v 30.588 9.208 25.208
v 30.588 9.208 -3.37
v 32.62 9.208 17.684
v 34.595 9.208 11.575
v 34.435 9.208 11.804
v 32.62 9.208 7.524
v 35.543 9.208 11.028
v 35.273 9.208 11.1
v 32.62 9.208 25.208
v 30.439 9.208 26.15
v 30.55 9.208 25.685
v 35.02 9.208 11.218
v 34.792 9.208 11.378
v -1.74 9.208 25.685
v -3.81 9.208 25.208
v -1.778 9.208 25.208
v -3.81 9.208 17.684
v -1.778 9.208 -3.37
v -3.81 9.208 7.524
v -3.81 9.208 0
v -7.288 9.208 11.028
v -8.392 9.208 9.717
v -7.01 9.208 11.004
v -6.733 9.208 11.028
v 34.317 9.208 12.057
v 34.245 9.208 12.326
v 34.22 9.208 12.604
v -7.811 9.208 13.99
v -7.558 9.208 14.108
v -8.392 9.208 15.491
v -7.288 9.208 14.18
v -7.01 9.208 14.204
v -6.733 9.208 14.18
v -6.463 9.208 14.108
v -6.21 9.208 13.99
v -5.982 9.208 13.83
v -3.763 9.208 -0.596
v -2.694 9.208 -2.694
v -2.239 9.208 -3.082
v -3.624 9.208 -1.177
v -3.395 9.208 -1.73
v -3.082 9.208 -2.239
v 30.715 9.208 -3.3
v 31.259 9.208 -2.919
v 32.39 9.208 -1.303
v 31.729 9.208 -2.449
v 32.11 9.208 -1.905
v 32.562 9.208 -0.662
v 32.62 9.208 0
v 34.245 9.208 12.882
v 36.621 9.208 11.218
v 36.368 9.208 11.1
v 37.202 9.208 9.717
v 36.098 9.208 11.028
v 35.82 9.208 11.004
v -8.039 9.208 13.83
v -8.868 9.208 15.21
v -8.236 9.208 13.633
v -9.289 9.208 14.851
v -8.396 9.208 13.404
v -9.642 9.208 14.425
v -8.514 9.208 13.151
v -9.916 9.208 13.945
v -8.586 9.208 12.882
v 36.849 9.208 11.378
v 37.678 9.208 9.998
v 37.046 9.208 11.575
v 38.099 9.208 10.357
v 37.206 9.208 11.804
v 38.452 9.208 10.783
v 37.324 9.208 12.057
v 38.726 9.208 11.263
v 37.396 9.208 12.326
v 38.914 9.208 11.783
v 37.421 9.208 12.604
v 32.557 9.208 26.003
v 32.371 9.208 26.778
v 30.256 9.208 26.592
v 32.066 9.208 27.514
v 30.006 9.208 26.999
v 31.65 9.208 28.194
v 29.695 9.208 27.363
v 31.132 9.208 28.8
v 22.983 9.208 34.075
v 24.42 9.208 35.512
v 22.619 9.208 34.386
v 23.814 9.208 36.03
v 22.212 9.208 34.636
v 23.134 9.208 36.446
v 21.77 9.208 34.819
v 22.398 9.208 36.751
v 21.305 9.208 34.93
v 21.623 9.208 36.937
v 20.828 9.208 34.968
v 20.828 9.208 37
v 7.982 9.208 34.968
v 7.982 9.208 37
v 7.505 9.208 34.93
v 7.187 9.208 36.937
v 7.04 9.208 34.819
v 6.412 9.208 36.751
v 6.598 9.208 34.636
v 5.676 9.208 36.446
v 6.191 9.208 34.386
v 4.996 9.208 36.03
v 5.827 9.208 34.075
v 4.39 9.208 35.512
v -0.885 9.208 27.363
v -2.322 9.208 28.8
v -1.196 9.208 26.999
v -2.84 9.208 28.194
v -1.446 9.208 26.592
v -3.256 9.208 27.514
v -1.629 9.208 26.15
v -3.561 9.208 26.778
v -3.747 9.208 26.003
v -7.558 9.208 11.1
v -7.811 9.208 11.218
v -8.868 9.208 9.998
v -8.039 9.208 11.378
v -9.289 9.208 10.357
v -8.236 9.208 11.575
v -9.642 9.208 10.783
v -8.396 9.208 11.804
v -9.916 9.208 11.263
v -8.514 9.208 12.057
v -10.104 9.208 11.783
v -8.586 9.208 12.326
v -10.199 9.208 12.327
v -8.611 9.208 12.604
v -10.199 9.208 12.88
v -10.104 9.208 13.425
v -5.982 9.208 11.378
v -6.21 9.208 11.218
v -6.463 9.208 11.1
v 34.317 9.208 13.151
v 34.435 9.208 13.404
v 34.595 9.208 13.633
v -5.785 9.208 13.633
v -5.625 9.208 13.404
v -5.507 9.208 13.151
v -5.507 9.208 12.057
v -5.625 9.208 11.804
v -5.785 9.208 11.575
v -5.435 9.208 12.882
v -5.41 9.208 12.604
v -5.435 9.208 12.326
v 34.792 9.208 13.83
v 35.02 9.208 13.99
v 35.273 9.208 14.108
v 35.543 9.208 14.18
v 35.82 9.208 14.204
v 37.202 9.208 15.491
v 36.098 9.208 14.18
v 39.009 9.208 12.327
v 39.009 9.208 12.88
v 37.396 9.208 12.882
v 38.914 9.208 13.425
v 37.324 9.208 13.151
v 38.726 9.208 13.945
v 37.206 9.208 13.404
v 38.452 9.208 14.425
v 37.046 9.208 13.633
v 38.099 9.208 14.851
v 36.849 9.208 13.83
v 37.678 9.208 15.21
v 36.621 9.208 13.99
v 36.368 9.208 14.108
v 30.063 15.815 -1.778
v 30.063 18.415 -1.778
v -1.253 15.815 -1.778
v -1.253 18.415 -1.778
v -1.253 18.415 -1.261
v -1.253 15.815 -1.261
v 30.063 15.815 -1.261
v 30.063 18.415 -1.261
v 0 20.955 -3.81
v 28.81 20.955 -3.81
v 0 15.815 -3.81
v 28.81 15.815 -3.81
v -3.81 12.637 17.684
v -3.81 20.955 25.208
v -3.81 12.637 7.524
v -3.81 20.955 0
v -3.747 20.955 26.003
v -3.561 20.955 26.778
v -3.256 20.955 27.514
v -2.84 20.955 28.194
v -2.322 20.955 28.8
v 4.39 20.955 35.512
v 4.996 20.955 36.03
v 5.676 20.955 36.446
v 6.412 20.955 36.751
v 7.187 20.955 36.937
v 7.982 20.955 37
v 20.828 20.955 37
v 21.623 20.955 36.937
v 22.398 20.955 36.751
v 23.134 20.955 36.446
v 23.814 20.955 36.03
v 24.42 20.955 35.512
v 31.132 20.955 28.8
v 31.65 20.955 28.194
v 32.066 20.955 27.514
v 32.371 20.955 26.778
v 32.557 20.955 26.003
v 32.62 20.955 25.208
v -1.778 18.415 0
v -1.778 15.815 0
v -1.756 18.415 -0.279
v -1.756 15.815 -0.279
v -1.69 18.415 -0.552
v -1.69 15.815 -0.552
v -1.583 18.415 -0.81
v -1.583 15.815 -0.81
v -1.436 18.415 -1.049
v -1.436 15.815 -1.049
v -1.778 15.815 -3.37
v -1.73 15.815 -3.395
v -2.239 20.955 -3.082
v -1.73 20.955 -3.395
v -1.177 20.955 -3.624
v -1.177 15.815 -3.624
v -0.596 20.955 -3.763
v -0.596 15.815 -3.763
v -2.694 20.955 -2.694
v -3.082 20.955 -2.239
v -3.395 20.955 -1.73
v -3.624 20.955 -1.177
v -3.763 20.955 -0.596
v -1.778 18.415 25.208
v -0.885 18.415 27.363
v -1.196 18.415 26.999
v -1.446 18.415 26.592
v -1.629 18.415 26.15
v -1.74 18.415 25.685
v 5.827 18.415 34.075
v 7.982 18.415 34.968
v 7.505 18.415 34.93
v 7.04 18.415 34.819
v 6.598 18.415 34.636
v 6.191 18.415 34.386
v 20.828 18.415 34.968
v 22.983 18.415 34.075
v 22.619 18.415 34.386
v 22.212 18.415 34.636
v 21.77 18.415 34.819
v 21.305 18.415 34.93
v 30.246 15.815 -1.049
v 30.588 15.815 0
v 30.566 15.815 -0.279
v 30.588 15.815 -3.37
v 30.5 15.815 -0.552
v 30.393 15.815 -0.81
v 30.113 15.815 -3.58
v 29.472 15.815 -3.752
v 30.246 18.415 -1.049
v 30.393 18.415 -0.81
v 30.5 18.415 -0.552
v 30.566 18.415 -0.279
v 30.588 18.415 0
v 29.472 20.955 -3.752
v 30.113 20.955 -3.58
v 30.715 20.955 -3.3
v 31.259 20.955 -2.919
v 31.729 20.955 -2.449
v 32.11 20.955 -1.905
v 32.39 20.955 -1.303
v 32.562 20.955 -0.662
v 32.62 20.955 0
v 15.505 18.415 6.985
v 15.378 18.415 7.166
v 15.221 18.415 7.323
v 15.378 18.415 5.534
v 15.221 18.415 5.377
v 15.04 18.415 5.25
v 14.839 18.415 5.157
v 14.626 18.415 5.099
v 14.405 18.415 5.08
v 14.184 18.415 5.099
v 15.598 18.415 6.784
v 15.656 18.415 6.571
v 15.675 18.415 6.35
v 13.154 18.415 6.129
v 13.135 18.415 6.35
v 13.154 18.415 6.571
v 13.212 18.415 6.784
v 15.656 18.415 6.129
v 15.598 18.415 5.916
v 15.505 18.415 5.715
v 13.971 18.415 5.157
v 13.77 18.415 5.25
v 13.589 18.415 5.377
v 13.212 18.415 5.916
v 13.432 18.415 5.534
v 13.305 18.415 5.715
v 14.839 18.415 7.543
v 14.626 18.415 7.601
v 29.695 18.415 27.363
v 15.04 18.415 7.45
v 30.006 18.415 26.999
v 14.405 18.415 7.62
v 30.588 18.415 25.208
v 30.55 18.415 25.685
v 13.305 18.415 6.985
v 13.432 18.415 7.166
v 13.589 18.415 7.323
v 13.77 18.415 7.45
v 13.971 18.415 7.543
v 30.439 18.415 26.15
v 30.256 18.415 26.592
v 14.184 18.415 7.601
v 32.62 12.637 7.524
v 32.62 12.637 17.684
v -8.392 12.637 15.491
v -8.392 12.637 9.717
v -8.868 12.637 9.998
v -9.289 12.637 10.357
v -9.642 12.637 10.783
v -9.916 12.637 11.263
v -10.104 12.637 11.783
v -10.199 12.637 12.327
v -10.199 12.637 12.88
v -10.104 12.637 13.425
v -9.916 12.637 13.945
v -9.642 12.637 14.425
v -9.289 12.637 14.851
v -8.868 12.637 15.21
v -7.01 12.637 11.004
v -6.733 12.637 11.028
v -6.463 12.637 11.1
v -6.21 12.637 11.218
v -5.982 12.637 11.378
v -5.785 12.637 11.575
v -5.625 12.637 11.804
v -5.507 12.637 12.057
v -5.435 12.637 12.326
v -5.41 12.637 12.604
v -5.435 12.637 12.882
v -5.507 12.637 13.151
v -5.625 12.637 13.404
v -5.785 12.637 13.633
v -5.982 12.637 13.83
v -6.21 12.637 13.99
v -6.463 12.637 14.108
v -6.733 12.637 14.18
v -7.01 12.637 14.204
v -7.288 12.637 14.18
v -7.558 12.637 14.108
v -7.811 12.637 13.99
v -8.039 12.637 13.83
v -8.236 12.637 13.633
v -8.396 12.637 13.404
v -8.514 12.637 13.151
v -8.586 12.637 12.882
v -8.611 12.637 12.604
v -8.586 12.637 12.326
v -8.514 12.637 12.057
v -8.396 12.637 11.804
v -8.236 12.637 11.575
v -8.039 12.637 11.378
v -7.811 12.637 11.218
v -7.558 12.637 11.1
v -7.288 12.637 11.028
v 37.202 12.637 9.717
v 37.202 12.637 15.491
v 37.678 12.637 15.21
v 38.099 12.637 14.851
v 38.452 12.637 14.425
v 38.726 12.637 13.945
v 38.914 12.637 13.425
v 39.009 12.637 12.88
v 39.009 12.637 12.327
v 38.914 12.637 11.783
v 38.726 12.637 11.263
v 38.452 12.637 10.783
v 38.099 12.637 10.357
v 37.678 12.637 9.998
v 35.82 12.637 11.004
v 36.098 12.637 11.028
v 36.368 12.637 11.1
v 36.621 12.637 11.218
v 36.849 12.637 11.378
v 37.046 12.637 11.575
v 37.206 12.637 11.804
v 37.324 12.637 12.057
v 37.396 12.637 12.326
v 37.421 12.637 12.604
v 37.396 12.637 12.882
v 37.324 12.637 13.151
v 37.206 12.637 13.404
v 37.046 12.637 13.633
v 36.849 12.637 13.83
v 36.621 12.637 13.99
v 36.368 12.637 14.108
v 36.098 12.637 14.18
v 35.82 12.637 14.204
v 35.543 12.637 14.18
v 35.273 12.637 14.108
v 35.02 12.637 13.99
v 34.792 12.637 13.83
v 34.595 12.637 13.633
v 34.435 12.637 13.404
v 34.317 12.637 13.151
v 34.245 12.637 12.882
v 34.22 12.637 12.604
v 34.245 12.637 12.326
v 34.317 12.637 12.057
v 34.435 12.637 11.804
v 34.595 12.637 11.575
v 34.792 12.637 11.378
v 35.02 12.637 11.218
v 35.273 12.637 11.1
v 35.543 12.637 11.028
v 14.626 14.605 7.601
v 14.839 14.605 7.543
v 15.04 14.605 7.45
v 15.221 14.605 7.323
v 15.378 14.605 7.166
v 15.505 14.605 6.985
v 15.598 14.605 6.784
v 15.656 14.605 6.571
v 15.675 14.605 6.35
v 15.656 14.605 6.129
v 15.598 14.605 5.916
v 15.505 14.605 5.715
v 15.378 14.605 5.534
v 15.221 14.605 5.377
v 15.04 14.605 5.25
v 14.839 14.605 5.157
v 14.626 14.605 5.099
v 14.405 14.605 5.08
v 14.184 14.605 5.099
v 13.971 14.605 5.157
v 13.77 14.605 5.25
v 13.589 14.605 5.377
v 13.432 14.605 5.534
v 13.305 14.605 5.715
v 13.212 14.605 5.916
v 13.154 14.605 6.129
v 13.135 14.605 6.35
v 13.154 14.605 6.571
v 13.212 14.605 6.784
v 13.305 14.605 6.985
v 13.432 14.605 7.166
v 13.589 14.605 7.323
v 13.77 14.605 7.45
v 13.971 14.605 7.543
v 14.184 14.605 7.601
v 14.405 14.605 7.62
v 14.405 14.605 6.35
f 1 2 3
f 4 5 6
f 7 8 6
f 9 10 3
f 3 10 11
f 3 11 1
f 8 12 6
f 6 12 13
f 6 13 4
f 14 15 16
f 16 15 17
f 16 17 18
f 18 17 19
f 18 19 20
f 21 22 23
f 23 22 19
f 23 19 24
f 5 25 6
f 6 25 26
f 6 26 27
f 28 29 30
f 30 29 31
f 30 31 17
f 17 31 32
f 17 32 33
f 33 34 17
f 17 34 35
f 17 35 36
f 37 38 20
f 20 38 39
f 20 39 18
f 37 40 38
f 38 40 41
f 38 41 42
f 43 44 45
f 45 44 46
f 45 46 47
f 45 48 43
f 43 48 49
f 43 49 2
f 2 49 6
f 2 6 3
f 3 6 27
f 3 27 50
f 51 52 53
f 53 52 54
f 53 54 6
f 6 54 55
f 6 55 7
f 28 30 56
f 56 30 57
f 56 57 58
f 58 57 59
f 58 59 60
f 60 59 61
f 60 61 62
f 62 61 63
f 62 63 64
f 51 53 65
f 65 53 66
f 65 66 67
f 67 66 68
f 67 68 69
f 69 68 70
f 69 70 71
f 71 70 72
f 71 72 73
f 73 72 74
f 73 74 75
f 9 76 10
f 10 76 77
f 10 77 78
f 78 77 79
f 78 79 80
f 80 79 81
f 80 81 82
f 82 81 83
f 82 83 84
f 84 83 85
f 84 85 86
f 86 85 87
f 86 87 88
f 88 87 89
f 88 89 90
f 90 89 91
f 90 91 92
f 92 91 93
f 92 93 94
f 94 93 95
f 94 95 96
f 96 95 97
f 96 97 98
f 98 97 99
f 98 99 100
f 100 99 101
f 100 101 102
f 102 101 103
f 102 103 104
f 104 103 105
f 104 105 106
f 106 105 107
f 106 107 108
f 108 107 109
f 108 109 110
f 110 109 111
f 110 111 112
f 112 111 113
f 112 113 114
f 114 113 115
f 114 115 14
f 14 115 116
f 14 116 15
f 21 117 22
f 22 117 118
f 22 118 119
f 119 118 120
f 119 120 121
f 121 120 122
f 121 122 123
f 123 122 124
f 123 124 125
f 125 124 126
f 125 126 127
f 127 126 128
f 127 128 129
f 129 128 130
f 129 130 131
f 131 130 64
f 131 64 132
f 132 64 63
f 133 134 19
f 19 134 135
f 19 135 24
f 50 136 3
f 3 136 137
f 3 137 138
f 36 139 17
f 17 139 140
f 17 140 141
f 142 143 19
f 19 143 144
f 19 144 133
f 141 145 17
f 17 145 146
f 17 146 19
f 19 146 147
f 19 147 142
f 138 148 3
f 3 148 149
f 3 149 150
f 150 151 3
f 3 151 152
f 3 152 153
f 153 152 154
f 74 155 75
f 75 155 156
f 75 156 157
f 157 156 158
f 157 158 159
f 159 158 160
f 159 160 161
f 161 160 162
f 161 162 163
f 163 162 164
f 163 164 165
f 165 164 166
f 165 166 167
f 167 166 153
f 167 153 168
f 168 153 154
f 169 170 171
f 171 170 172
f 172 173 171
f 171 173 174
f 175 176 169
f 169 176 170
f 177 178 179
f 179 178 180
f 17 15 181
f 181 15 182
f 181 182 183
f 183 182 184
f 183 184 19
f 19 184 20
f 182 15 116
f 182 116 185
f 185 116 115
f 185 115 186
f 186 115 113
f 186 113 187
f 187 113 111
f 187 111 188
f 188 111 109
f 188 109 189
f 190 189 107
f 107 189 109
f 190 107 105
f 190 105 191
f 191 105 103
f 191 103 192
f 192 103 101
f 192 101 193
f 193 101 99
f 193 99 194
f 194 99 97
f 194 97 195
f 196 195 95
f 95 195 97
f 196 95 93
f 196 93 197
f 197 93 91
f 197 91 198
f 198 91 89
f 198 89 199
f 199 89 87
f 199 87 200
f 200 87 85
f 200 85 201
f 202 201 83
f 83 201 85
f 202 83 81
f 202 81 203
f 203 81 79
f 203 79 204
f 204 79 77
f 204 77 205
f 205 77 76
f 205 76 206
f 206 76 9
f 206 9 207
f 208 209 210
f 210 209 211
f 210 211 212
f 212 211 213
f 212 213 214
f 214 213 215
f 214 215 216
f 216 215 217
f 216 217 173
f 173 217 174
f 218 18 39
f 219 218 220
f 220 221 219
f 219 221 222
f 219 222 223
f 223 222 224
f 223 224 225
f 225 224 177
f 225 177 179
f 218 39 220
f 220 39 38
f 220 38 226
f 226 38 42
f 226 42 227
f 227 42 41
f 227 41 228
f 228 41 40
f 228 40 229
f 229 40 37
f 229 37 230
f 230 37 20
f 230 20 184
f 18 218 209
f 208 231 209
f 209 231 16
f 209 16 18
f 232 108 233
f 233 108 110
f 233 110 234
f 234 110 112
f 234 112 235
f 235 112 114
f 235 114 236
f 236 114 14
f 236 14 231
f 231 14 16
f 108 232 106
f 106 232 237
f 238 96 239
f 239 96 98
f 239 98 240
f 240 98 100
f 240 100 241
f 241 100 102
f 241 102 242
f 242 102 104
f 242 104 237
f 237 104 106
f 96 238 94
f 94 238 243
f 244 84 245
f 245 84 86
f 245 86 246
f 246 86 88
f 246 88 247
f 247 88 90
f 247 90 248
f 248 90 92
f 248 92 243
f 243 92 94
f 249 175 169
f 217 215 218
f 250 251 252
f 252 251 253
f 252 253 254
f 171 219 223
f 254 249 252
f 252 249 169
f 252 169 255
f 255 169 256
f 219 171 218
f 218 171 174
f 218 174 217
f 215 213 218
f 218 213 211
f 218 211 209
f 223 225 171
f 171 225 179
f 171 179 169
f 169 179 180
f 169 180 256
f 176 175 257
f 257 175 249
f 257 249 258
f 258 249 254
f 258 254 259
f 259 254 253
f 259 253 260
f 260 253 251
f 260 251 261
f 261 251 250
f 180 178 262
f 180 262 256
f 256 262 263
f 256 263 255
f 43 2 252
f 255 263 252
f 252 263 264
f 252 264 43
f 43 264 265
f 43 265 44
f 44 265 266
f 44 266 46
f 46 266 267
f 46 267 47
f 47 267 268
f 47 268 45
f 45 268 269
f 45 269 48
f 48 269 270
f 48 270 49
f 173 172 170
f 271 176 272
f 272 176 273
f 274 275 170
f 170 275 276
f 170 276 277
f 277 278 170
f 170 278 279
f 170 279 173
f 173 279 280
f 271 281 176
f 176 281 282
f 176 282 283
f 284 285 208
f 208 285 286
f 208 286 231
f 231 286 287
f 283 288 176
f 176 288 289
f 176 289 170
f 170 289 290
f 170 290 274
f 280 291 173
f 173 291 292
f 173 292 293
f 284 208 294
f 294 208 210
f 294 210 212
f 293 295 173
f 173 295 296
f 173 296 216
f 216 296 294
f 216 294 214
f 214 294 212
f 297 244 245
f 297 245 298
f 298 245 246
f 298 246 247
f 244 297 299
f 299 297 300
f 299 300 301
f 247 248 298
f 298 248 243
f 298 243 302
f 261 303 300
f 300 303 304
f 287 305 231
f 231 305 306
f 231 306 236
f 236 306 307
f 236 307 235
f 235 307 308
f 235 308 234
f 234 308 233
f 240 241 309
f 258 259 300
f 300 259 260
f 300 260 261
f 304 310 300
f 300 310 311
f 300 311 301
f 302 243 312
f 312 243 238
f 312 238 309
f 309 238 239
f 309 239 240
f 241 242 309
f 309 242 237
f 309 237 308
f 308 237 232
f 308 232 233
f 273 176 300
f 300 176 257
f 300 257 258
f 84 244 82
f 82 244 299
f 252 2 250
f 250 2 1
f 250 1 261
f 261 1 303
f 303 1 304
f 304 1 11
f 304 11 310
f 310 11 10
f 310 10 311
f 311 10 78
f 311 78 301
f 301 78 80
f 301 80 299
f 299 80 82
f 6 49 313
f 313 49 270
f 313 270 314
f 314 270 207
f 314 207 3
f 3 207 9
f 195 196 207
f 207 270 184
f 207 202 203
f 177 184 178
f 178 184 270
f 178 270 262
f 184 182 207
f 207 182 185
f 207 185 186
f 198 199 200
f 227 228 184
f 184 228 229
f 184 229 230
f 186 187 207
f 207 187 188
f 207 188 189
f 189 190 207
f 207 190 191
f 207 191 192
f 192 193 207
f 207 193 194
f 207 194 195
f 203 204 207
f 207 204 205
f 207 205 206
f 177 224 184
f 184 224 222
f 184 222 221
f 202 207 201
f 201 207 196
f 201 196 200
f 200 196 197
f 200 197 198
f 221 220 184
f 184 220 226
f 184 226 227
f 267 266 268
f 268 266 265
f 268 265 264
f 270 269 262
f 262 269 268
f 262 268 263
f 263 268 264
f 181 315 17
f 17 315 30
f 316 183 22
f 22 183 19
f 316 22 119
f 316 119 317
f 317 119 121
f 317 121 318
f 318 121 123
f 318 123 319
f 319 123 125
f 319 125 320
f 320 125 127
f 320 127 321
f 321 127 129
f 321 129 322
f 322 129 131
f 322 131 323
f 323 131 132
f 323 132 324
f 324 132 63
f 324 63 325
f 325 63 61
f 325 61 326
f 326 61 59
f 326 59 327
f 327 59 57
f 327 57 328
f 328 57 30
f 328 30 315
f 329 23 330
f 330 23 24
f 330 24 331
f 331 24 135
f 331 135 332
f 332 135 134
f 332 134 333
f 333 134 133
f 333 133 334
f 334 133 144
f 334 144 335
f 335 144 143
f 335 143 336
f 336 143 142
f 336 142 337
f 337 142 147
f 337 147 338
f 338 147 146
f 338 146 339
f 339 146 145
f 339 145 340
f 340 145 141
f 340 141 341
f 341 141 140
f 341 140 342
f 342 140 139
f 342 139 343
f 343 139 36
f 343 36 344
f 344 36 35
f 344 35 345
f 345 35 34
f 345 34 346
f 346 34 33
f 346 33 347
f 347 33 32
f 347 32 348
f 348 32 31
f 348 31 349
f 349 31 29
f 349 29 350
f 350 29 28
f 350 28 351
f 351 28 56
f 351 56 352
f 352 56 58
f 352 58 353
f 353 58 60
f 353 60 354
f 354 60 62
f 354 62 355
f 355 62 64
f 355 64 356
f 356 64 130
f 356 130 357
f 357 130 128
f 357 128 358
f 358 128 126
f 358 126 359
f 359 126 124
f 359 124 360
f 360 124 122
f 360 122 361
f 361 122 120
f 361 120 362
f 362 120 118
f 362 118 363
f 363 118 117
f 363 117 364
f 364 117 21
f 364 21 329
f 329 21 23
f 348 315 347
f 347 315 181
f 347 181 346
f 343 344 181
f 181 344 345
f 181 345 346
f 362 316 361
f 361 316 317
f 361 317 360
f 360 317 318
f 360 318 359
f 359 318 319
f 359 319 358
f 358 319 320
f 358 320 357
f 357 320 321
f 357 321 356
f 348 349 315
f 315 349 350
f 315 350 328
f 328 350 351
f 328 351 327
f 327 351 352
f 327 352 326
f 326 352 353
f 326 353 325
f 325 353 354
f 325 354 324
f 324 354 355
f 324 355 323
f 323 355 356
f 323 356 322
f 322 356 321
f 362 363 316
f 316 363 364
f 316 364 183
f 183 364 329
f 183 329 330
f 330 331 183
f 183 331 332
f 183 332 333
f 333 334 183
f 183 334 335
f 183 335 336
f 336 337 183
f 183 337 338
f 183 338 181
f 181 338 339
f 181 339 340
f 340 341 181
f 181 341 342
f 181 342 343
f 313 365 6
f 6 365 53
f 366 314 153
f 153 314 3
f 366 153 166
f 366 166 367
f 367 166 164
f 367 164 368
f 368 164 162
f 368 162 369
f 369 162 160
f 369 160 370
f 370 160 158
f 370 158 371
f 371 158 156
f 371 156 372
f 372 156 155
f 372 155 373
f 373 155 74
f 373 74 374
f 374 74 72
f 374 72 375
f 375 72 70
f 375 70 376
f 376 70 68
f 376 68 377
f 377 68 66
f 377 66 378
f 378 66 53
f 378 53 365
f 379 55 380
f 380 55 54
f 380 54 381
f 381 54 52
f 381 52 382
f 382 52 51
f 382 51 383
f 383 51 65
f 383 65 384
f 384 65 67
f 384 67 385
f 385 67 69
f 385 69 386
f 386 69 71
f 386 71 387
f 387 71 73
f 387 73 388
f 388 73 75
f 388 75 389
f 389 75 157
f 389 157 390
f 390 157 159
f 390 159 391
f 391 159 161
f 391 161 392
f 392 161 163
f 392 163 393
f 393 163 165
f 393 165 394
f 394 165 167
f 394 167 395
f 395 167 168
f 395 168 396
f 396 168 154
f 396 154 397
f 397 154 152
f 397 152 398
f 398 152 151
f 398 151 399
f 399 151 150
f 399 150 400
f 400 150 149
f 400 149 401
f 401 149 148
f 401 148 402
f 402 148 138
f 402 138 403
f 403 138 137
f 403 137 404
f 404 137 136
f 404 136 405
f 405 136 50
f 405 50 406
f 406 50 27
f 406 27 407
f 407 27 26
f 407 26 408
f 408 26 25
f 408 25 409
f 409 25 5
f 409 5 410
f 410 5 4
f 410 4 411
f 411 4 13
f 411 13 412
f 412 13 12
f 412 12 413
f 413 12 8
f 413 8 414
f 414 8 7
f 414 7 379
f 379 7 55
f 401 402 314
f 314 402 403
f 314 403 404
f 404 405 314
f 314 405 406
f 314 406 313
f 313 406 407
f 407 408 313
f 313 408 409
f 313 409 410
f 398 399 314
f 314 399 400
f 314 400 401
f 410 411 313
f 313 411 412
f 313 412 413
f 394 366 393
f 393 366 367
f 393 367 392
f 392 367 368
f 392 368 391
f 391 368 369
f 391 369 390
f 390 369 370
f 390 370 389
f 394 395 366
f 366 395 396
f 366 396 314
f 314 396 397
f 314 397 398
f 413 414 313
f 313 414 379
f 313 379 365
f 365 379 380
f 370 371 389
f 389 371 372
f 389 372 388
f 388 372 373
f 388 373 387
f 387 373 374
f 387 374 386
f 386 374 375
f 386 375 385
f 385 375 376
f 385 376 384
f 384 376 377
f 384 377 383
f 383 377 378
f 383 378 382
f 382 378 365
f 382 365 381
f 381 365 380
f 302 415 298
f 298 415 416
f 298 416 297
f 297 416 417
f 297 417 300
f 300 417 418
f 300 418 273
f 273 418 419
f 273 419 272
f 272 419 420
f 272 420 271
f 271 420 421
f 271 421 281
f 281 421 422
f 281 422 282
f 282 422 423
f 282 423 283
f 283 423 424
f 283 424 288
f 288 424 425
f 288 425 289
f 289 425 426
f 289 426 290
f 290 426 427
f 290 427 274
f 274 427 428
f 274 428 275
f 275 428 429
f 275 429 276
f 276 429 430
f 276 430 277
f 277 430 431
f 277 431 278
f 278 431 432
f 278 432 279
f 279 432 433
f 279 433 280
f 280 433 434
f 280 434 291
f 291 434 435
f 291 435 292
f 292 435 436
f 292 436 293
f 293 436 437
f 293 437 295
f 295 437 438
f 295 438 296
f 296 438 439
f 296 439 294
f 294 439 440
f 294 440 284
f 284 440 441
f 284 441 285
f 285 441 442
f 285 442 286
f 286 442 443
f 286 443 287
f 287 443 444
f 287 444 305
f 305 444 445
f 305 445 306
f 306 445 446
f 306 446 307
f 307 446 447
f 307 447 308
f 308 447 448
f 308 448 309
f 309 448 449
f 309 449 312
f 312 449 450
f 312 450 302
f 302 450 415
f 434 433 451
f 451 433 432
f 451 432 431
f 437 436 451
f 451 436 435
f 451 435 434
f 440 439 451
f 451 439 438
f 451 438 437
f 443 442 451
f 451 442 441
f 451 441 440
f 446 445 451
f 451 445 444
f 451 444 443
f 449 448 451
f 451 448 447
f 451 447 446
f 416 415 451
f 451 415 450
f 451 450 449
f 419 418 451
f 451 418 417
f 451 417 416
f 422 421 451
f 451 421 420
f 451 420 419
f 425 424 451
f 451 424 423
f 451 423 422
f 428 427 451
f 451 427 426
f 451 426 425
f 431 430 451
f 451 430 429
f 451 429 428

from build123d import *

# Parameters (mm, degrees)
BOSS_EXTRUDE1_DEPTH     = 2.54
BOSS_EXTRUDE2_START     = -23.495
BOSS_EXTRUDE2_DEPTH     = 23.495
CUT_EXTRUDE2_DEPTH      = 20.955
BOSS_EXTRUDE3_DEPTH     = 2.54
SKETCH11_R              = 1.27
BOSS_EXTRUDE4_DEPTH     = 2.54
CUT_EXTRUDE3_DEPTH      = 2.54
CUT_EXTRUDE4_DEPTH      = 2.54
CUT_EXTRUDE4_DEPTH_BACK = 2.54
SKETCH15_W              = 0.800537806
SKETCH15_H              = 10.431424645
SPLIT1_START            = -2.54
SPLIT1_DEPTH            = 11.7475
SKETCH16_R              = 3.2004
SKETCH16_R_2            = 1.6002
SKETCH16_R_3            = 1.27
BOSS_EXTRUDE5_DEPTH     = 3.429
SKETCH21_R              = 1.27
BOSS_EXTRUDE6_DEPTH     = 3.81


# Read off the part's stored shape, not the designer's step: Split1
with BuildPart() as part:
    # Sketch1 → Boss-Extrude1 (new body)
    # profile 1 of 2: a face of its own
    with BuildSketch(Plane(origin=(0, 0, 0), x_dir=(1, 0, 0), z_dir=(0, 1, 0))):
        with BuildLine():
            Line((-1.778, 0), (-1.778, -25.207897552))
            ThreePointArc((-1.778, -25.207897552), (-1.545984815, -26.374316653), (-0.885261469, -27.363159021))
            Line((-0.885261469, -27.363159021), (5.826840979, -34.075261469))
            ThreePointArc((5.826840979, -34.075261469), (6.815683347, -34.735984815), (7.982102448, -34.968))
            Line((7.982102448, -34.968), (20.827897552, -34.968))
            ThreePointArc((20.827897552, -34.968), (21.994316653, -34.735984815), (22.983159021, -34.075261469))
            Line((22.983159021, -34.075261469), (29.695261469, -27.363159021))
            ThreePointArc((29.695261469, -27.363159021), (30.355984815, -26.374316653), (30.588, -25.207897552))
            Line((30.588, -25.207897552), (30.588, 0))
            ThreePointArc((30.588, 0), (30.067235857, 1.257235857), (28.81, 1.778))
            Line((28.81, 1.778), (0, 1.778))
            ThreePointArc((0, 1.778), (-1.257235857, 1.257235857), (-1.778, 0))
        make_face()
        with BuildLine():
            ThreePointArc((0, 1.27), (-0.898025612, 0.898025612), (-1.27, 0))
            Line((-1.27, 0), (-1.27, -25.207897552))
            ThreePointArc((-1.27, -25.207897552), (-1.076654013, -26.17991347), (-0.526051224, -27.003948776))
            Line((-0.526051224, -27.003948776), (6.186051224, -33.716051224))
            ThreePointArc((6.186051224, -33.716051224), (7.01008653, -34.266654013), (7.982102448, -34.46))
            Line((7.982102448, -34.46), (20.827897552, -34.46))
            ThreePointArc((20.827897552, -34.46), (21.79991347, -34.266654013), (22.623948776, -33.716051224))
            Line((22.623948776, -33.716051224), (29.336051224, -27.003948776))
            ThreePointArc((29.336051224, -27.003948776), (29.886654013, -26.17991347), (30.08, -25.207897552))
            Line((30.08, -25.207897552), (30.08, 0))
            ThreePointArc((30.08, 0), (29.708025612, 0.898025612), (28.81, 1.27))
            Line((28.81, 1.27), (0, 1.27))
        make_face(mode=Mode.SUBTRACT)
    # profile 2 of 2: a face of its own
    with BuildSketch(Plane(origin=(0, 0, 0), x_dir=(1, 0, 0), z_dir=(0, 1, 0))):
        with BuildLine():
            Line((28.81, 1.27), (0, 1.27))
            ThreePointArc((0, 1.27), (-0.898025612, 0.898025612), (-1.27, 0))
            Line((-1.27, 0), (-1.27, -25.207897552))
            ThreePointArc((-1.27, -25.207897552), (-1.076654013, -26.17991347), (-0.526051224, -27.003948776))
            Line((-0.526051224, -27.003948776), (6.186051224, -33.716051224))
            ThreePointArc((6.186051224, -33.716051224), (7.01008653, -34.266654013), (7.982102448, -34.46))
            Line((7.982102448, -34.46), (20.827897552, -34.46))
            ThreePointArc((20.827897552, -34.46), (21.79991347, -34.266654013), (22.623948776, -33.716051224))
            Line((22.623948776, -33.716051224), (29.336051224, -27.003948776))
            ThreePointArc((29.336051224, -27.003948776), (29.886654013, -26.17991347), (30.08, -25.207897552))
            Line((30.08, -25.207897552), (30.08, 0))
            ThreePointArc((30.08, 0), (29.708025612, 0.898025612), (28.81, 1.27))
        make_face()
    extrude(amount=-BOSS_EXTRUDE1_DEPTH)

    # Sketch2 → Boss-Extrude2 (add)
    with BuildSketch(Plane.XZ.offset(2.54).offset(BOSS_EXTRUDE2_START)):
        with BuildLine():
            Line((-3.81, 25.207897552), (-3.81, 0))
            ThreePointArc((-3.81, 0), (-2.694076836, -2.694076836), (0, -3.81))
            Line((0, -3.81), (28.81, -3.81))
            ThreePointArc((28.81, -3.81), (31.504076836, -2.694076836), (32.62, 0))
            Line((32.62, 0), (32.62, 25.207897552))
            ThreePointArc((32.62, 25.207897552), (32.233308025, 27.151929388), (31.132102448, 28.8))
            Line((31.132102448, 28.8), (24.42, 35.512102448))
            ThreePointArc((24.42, 35.512102448), (22.771929388, 36.613308025), (20.827897552, 37))
            Line((20.827897552, 37), (7.982102448, 37))
            ThreePointArc((7.982102448, 37), (6.038070612, 36.613308025), (4.39, 35.512102448))
            Line((4.39, 35.512102448), (-2.322102448, 28.8))
            ThreePointArc((-2.322102448, 28.8), (-3.423308025, 27.151929388), (-3.81, 25.207897552))
        make_face()
        with BuildLine():
            ThreePointArc((30.588, 25.207897552), (30.355984815, 26.374316653), (29.695261469, 27.363159021))
            Line((29.695261469, 27.363159021), (22.983159021, 34.075261469))
            ThreePointArc((22.983159021, 34.075261469), (21.994316653, 34.735984815), (20.827897552, 34.968))
            Line((20.827897552, 34.968), (7.982102448, 34.968))
            ThreePointArc((7.982102448, 34.968), (6.815683347, 34.735984815), (5.826840979, 34.075261469))
            Line((5.826840979, 34.075261469), (-0.885261469, 27.363159021))
            ThreePointArc((-0.885261469, 27.363159021), (-1.545984815, 26.374316653), (-1.778, 25.207897552))
            Line((-1.778, 25.207897552), (-1.778, 0))
            ThreePointArc((-1.778, 0), (-1.257235857, -1.257235857), (0, -1.778))
            Line((0, -1.778), (28.81, -1.778))
            ThreePointArc((28.81, -1.778), (30.067235857, -1.257235857), (30.588, 0))
            Line((30.588, 0), (30.588, 25.207897552))
        make_face(mode=Mode.SUBTRACT)
    extrude(amount=BOSS_EXTRUDE2_DEPTH)

    # Sketch9 → Cut-Extrude2 (cut)
    with BuildSketch(Plane(origin=(0, 20.955, 0), x_dir=(1, 0, 0), z_dir=(0, 1, 0))):
        with BuildLine():
            Line((-1.253142306, 1.778), (-1.253142306, 1.261316122))
            ThreePointArc((-1.253142306, 1.261316122), (-1.130998818, 1.371905855), (-0.999142306, 1.470713654))
            Line((-0.999142306, 1.470713654), (-0.999142306, 1.778))
            Line((-0.999142306, 1.778), (-1.253142306, 1.778))
        make_face()
        with BuildLine():
            Line((-0.999142306, 1.778), (-0.999142306, 1.470713654))
            ThreePointArc((-0.999142306, 1.470713654), (-0.522663909, 1.699442979), (0, 1.778))
            Line((0, 1.778), (-0.999142306, 1.778))
        make_face()
        with BuildLine():
            ThreePointArc((28.81, 1.778), (29.333159527, 1.699290472), (29.81, 1.470130606))
            Line((29.81, 1.470130606), (29.81, 1.778))
            Line((29.81, 1.778), (28.81, 1.778))
        make_face()
        with BuildLine():
            ThreePointArc((29.81, 1.470130606), (29.941398884, 1.371575942), (30.063142306, 1.261316122))
            Line((30.063142306, 1.261316122), (30.063142306, 1.778))
            Line((30.063142306, 1.778), (29.81, 1.778))
            Line((29.81, 1.778), (29.81, 1.470130606))
        make_face()
    extrude(amount=-CUT_EXTRUDE2_DEPTH, mode=Mode.SUBTRACT)

    # Sketch10 → Boss-Extrude3 (add)
    with BuildSketch(Plane(origin=(0, 20.955, 0), x_dir=(1, 0, 0), z_dir=(0, 1, 0))):
        with BuildLine():
            Line((-3.81, 0), (-3.81, -25.207897552))
            ThreePointArc((-3.81, -25.207897552), (-3.423308025, -27.151929388), (-2.322102448, -28.8))
            Line((-2.322102448, -28.8), (4.39, -35.512102448))
            ThreePointArc((4.39, -35.512102448), (6.038070612, -36.613308025), (7.982102448, -37))
            Line((7.982102448, -37), (20.827897552, -37))
            ThreePointArc((20.827897552, -37), (22.771929388, -36.613308025), (24.42, -35.512102448))
            Line((24.42, -35.512102448), (31.132102448, -28.8))
            ThreePointArc((31.132102448, -28.8), (32.233308025, -27.151929388), (32.62, -25.207897552))
            Line((32.62, -25.207897552), (32.62, 0))
            ThreePointArc((32.62, 0), (31.504076836, 2.694076836), (28.81, 3.81))
            Line((28.81, 3.81), (0, 3.81))
            ThreePointArc((0, 3.81), (-2.694076836, 2.694076836), (-3.81, 0))
        make_face()
    extrude(amount=-BOSS_EXTRUDE3_DEPTH)

    # Sketch11 → Boss-Extrude4 (add)
    with BuildSketch(Plane(origin=(0, 0, 0), x_dir=(1, 0, 0), z_dir=(0, 1, 0))):
        with Locations(Location((2.371622665, -3.626580703, 0), (0, 0, 270))):
            Circle(SKETCH11_R)
        with Locations(Location((26.438377335, -3.626580703, 0), (0, 0, 270))):
            Circle(SKETCH11_R)
        with Locations(Location((2.371622665, -26.04201004, 0), (0, 0, 270))):
            Circle(SKETCH11_R)
        with Locations(Location((26.438377335, -26.04201004, 0), (0, 0, 270))):
            Circle(SKETCH11_R)
    extrude(amount=BOSS_EXTRUDE4_DEPTH)

    # Sketch8 → Cut-Extrude3 (cut)
    with BuildSketch(Plane(origin=(0, 0, -3.81), x_dir=(-1, 0, 0), z_dir=(0, 0, -1))):
        with BuildLine():
            ThreePointArc((-29.81, 5.625), (-29.804353285, 5.503964576), (-29.787462194, 5.383980617))
            Line((-29.787462194, 5.383980617), (0.977462194, 5.383980617))
            ThreePointArc((0.977462194, 5.383980617), (0.994353285, 5.503964576), (1, 5.625))
            Line((1, 5.625), (1, 15.575))
            ThreePointArc((1, 15.575), (0.994382339, 15.695724314), (0.977577908, 15.815405262))
            Line((0.977577908, 15.815405262), (-29.787577908, 15.815405262))
            ThreePointArc((-29.787577908, 15.815405262), (-29.804382339, 15.695724314), (-29.81, 15.575))
            Line((-29.81, 15.575), (-29.81, 5.625))
        make_face()
    extrude(amount=-CUT_EXTRUDE3_DEPTH, mode=Mode.SUBTRACT)

    # Sketch15 → Cut-Extrude4 (cut, two sides: drawn at the far end of the back side and taken through both)
    with BuildSketch(Plane.XY.offset(-1.778).offset(-CUT_EXTRUDE4_DEPTH_BACK)):
        with Locations((-1.377731097, 10.59969294)):
            Rectangle(SKETCH15_W, SKETCH15_H)
        with Locations((30.187731097, 10.59969294)):
            Rectangle(SKETCH15_W, SKETCH15_H)
    extrude(amount=CUT_EXTRUDE4_DEPTH + CUT_EXTRUDE4_DEPTH_BACK, mode=Mode.SUBTRACT)

    # Split1 outline → Split1 (cut)
    with BuildSketch(Plane(origin=(0, 0, 0), x_dir=(1, 0, 0), z_dir=(0, 1, 0)).offset(SPLIT1_START)):
        with BuildLine():
            Line((28.81, 3.81), (0, 3.81))
            ThreePointArc((0, 3.81), (-2.694076836, 2.694076836), (-3.81, 0))
            Line((-3.81, 0), (-3.81, -25.207897552))
            ThreePointArc((-3.81, -25.207897552), (-3.423308025, -27.151929388), (-2.322102448, -28.8))
            Line((-2.322102448, -28.8), (4.39, -35.512102448))
            ThreePointArc((4.39, -35.512102448), (6.038070612, -36.613308025), (7.982102448, -37))
            Line((7.982102448, -37), (20.827897552, -37))
            ThreePointArc((20.827897552, -37), (22.771929388, -36.613308025), (24.42, -35.512102448))
            Line((24.42, -35.512102448), (31.132102448, -28.8))
            ThreePointArc((31.132102448, -28.8), (32.233308025, -27.151929388), (32.62, -25.207897552))
            Line((32.62, -25.207897552), (32.62, 0))
            ThreePointArc((32.62, 0), (31.504076836, 2.694076836), (28.81, 3.81))
        make_face()
    extrude(amount=SPLIT1_DEPTH, mode=Mode.SUBTRACT)

    # Sketch16 → Boss-Extrude5 (add)
    # profile 1 of 7: a face of its own
    with BuildSketch(Plane.XZ.offset(-9.2075)):
        with BuildLine():
            Line((-3.81, 12.603948776), (-3.81, 17.683948776))
            Line((-3.81, 17.683948776), (-8.392146181, 15.49070087))
            ThreePointArc((-8.392146181, 15.49070087), (-5.304466285, 15.31178007), (-3.81, 12.603948776))
        make_face()
    # profile 2 of 7: a face of its own
    with BuildSketch(Plane.XZ.offset(-9.2075)):
        with Locations((-7.0104, 12.603948776)):
            Circle(SKETCH16_R)
        with Locations(Location((-7.0104, 12.603948776, 0), (0, 0, 270))):
            Circle(SKETCH16_R_2, mode=Mode.SUBTRACT)
    # profile 3 of 7: a face of its own
    with BuildSketch(Plane.XZ.offset(-9.2075)):
        with BuildLine():
            Line((-3.81, 7.523948776), (-3.81, 12.603948776))
            ThreePointArc((-3.81, 12.603948776), (-5.304466285, 9.896117481), (-8.392146181, 9.717196682))
            Line((-8.392146181, 9.717196682), (-3.81, 7.523948776))
        make_face()
    # profile 4 of 7: a face of its own
    with BuildSketch(Plane.XZ.offset(-9.2075)):
        with BuildLine():
            Line((32.62, 12.603948776), (32.62, 7.523948776))
            Line((32.62, 7.523948776), (37.202146181, 9.717196682))
            ThreePointArc((37.202146181, 9.717196682), (34.114466285, 9.896117481), (32.62, 12.603948776))
        make_face()
    # profile 5 of 7: a face of its own
    with BuildSketch(Plane.XZ.offset(-9.2075)):
        with Locations((35.8204, 12.603948776)):
            Circle(SKETCH16_R)
        with Locations(Location((35.8204, 12.603948776, 0), (0, 0, 270))):
            Circle(SKETCH16_R_2, mode=Mode.SUBTRACT)
    # profile 6 of 7: a face of its own
    with BuildSketch(Plane.XZ.offset(-9.2075)):
        with BuildLine():
            Line((32.62, 17.683948776), (32.62, 12.603948776))
            ThreePointArc((32.62, 12.603948776), (34.114466285, 15.31178007), (37.202146181, 15.49070087))
            Line((37.202146181, 15.49070087), (32.62, 17.683948776))
        make_face()
    # profile 7 of 7: a face of its own
    with BuildSketch(Plane.XZ.offset(-9.2075)):
        with Locations((35.8204, 12.603948776)):
            Circle(SKETCH16_R_3)
    extrude(amount=-BOSS_EXTRUDE5_DEPTH)


with BuildPart() as boss_extrude5_kept_piece:
    # of the separate pieces the step leaves, the one the design keeps (boss_extrude5_pieces_kept)
    add(part.part.solids().sort_by_distance((-3.81, 20.955, 0))[0])

    # Sketch21 → Boss-Extrude6 (add)
    with BuildSketch(Plane.XZ.offset(-18.415)):
        with Locations(Location((14.405, 6.35, 0), (0, 0, 90))):
            Circle(SKETCH21_R)
    extrude(amount=BOSS_EXTRUDE6_DEPTH)


solid = boss_extrude5_kept_piece.part
